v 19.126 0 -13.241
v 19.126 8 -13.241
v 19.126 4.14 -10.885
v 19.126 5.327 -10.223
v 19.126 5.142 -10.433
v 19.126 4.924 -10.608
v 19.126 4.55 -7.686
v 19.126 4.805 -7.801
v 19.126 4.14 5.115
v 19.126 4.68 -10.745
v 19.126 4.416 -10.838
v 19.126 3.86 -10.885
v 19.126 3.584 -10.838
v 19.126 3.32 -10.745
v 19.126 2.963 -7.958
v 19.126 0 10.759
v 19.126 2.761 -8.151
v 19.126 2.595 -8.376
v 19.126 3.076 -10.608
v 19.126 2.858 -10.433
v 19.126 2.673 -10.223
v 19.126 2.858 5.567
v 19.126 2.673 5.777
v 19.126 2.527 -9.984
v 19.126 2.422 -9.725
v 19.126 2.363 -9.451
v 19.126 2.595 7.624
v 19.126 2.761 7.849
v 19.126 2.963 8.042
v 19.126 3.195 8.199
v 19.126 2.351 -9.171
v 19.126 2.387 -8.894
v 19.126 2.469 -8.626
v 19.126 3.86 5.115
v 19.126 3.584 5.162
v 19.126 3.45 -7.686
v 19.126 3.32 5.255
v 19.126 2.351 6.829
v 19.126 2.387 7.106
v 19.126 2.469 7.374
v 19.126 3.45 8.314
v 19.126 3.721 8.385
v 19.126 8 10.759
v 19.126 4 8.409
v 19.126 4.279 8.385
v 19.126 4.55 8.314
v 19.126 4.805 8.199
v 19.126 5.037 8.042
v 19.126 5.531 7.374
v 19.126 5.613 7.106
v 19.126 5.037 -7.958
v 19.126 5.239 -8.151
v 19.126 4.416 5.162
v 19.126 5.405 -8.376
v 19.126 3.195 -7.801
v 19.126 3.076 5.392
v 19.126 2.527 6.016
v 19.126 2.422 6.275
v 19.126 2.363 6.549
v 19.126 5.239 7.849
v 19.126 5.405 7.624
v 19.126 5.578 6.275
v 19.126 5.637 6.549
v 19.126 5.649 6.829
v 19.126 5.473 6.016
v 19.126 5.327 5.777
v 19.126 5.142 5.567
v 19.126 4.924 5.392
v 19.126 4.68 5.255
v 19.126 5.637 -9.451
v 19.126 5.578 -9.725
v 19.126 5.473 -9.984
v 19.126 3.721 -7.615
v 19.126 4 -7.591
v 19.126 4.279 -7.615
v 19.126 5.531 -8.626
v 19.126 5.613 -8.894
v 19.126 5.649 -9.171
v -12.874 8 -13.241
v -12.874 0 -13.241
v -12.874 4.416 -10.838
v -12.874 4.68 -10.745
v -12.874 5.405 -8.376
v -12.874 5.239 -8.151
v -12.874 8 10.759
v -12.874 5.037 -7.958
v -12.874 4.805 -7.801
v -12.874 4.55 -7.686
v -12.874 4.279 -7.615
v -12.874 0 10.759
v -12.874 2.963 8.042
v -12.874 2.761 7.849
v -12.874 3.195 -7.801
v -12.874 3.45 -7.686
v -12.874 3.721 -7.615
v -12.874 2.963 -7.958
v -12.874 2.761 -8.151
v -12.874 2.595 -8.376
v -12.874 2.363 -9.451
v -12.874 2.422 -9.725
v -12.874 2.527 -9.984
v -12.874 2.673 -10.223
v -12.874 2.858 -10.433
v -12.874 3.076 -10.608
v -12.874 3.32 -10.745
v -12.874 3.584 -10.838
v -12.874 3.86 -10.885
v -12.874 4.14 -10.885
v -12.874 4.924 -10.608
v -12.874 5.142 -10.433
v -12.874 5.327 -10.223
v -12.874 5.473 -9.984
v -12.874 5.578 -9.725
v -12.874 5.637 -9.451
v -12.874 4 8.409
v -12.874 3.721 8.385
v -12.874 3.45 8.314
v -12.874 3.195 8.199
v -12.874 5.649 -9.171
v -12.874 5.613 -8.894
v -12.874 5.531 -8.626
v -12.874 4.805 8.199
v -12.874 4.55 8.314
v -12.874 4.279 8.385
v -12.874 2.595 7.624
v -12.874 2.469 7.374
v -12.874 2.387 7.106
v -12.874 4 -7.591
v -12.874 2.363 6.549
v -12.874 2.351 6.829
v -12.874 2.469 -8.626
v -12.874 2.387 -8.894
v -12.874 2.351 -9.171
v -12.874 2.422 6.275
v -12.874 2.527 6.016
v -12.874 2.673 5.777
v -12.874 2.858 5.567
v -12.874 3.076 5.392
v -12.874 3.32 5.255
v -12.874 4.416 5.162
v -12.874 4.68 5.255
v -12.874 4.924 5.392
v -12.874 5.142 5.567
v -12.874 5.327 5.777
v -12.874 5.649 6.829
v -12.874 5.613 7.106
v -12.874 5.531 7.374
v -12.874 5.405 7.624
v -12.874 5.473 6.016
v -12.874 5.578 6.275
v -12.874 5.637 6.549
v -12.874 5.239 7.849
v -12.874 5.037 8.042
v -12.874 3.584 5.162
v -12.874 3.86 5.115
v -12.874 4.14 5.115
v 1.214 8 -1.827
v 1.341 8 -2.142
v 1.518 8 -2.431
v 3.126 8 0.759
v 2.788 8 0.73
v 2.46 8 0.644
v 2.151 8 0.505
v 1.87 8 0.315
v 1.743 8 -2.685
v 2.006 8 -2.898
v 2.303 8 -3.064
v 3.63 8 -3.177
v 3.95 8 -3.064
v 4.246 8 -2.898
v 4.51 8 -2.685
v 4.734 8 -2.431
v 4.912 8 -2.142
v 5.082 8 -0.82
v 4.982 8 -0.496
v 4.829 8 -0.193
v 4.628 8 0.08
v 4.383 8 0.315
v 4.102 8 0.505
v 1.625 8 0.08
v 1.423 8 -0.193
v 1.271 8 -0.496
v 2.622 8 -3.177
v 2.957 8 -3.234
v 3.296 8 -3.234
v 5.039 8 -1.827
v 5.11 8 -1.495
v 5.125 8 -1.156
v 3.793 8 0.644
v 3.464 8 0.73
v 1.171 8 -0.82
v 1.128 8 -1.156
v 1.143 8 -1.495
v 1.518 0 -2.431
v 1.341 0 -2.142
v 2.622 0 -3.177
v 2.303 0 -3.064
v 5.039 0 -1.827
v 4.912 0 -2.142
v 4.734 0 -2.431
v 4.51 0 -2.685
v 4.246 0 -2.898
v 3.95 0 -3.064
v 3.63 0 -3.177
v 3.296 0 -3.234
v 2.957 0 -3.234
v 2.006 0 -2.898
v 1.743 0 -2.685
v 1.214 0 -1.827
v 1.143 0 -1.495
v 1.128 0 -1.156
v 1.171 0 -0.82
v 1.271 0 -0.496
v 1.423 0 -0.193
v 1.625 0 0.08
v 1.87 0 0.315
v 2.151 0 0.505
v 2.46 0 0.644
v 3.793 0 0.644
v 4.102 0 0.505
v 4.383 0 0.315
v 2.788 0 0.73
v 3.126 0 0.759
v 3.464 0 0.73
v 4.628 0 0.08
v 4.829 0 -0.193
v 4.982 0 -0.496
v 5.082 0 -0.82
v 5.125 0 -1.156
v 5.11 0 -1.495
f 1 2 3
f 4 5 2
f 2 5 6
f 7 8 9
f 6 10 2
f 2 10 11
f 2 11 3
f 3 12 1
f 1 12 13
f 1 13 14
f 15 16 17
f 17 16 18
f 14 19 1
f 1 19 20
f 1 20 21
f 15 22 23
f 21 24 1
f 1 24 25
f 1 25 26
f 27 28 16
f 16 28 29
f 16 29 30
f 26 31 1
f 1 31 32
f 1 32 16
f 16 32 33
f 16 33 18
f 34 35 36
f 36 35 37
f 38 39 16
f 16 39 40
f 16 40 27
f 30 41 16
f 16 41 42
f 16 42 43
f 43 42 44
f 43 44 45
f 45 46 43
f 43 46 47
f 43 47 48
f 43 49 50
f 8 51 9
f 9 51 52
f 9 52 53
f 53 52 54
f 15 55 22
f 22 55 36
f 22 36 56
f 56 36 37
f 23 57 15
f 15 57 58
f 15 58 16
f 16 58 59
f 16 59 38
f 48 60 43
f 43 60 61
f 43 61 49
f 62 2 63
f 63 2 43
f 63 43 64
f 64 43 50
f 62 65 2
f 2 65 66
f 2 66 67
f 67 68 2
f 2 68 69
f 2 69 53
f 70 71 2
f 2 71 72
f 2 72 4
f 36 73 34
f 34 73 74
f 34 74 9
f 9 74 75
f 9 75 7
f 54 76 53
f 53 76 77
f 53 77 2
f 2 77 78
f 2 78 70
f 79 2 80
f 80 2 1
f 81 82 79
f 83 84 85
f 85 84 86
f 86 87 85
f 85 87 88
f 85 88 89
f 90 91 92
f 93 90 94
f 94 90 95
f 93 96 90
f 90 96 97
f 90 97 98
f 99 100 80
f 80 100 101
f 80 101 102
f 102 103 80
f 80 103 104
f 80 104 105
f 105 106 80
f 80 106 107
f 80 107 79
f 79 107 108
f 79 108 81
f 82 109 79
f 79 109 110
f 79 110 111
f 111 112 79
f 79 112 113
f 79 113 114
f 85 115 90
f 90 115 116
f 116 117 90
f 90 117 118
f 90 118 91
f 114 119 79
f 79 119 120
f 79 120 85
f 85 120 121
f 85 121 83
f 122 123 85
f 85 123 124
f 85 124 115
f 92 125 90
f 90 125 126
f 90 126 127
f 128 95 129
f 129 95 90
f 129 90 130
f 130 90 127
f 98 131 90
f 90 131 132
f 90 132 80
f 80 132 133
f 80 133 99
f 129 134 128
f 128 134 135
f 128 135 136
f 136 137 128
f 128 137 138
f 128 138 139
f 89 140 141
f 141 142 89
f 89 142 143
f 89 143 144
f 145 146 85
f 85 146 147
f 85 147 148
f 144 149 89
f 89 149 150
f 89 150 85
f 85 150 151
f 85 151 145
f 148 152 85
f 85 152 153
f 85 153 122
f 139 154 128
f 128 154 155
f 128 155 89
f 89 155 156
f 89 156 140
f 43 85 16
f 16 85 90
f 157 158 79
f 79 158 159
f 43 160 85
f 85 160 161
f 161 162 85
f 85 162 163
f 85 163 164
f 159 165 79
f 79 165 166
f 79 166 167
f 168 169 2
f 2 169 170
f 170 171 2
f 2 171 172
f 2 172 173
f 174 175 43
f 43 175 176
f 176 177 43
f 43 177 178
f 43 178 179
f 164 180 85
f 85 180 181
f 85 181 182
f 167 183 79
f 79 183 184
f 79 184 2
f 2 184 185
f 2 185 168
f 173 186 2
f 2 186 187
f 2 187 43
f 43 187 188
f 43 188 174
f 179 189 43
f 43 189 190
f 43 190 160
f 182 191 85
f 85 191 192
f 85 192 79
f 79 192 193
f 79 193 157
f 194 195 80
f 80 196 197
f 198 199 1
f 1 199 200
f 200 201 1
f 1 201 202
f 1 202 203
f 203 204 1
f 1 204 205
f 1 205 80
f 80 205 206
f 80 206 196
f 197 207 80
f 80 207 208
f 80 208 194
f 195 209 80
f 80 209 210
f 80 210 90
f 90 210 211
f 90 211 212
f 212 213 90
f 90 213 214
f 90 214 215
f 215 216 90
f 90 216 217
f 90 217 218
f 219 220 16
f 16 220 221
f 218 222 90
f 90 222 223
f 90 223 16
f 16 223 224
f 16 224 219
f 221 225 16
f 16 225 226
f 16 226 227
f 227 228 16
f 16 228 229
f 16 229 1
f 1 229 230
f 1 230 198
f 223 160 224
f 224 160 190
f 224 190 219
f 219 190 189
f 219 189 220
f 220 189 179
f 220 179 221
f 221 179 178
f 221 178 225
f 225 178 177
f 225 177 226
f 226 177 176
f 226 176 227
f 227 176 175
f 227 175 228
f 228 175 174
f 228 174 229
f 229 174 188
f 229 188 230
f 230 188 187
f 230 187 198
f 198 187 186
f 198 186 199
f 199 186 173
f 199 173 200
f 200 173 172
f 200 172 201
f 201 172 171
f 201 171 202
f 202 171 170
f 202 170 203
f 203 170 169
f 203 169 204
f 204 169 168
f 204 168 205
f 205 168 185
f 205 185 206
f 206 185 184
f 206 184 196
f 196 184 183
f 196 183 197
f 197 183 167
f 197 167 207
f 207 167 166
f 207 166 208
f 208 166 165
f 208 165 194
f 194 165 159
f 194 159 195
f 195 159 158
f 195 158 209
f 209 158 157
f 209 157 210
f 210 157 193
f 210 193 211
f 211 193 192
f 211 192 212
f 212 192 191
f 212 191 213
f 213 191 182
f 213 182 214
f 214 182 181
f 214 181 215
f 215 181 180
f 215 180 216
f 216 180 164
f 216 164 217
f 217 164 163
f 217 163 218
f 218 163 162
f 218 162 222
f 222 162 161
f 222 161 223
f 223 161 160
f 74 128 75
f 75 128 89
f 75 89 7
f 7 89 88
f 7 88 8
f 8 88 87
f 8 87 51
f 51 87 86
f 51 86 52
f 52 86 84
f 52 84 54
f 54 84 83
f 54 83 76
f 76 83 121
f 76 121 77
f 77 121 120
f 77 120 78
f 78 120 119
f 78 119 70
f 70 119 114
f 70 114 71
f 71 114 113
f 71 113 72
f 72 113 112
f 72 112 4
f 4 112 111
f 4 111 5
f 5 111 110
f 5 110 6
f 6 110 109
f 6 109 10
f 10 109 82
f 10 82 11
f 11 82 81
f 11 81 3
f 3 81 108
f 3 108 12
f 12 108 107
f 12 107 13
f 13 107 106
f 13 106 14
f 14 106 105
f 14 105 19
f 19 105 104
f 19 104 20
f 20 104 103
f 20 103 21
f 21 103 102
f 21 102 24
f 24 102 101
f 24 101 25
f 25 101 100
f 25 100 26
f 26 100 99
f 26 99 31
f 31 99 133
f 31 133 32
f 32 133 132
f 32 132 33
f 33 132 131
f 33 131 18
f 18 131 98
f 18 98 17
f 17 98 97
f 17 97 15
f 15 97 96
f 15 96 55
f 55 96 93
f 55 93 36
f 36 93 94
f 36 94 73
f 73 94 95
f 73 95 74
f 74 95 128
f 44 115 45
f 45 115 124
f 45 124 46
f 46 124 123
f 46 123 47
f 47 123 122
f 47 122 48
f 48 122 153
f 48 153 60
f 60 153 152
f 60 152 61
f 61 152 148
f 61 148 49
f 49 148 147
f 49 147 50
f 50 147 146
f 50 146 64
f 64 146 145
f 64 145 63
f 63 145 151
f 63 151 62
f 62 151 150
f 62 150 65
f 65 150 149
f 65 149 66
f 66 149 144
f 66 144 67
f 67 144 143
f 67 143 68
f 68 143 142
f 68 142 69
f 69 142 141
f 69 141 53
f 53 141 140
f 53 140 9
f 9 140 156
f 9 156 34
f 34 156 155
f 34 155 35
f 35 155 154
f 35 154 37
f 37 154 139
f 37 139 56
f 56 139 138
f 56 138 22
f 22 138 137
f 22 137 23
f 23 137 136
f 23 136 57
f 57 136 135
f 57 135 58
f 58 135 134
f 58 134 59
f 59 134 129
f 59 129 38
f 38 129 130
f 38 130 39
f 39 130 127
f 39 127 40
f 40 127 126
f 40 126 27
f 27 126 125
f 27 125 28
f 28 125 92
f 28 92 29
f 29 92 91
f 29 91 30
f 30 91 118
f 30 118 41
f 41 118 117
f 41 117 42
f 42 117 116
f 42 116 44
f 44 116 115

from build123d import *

# Parameters (mm, degrees)
ESQUISSE1_W             = 32
ESQUISSE1_H             = 24
BOSS_EXTRU_1_DEPTH      = 8
ESQUISSE2_R             = 2
ENL_V_MAT_EXTRU_1_DEPTH = 8
ENL_V_MAT_EXTRU_2_REACH = 37.543
ESQUISSE3_R             = 1.65
ENL_V_MAT_EXTRU_3_REACH = 37.543
ESQUISSE4_R             = 1.65


with BuildPart() as part:
    # Esquisse1 → Boss.-Extru.1 (new body)
    with BuildSketch(Plane(origin=(0, 0, 0), x_dir=(1, 0, 0), z_dir=(0, 1, 0))):
        with Locations((3.126436782, 1.24137931)):
            Rectangle(ESQUISSE1_W, ESQUISSE1_H)
    extrude(amount=BOSS_EXTRU_1_DEPTH)

    # Esquisse2 → Enlèv. mat.-Extru.1 (cut)
    with BuildSketch(Plane(origin=(0, 8, 0), x_dir=(1, 0, 0), z_dir=(0, 1, 0))):
        with Locations(Location((3.126436782, 1.24137931, 0), (0, 0, 270))):
            Circle(ESQUISSE2_R)
    extrude(amount=-ENL_V_MAT_EXTRU_1_DEPTH, mode=Mode.SUBTRACT)

    # Esquisse3 → Enlèv. mat.-Extru.2 (cut, up to next)
    with BuildSketch(Plane.ZY.offset(12.873563218), mode=Mode.PRIVATE) as enl_v_mat_extru_2_sk1:
        with Locations((-9.24137931, 4)):
            Circle(ESQUISSE3_R)
    enl_v_mat_extru_2_tool1 = extrude(enl_v_mat_extru_2_sk1.sketch, amount=-ENL_V_MAT_EXTRU_2_REACH, mode=Mode.PRIVATE) & part.part
    add(enl_v_mat_extru_2_tool1.solids().sort_by_distance((-12.873563, 4, -9.241379))[0], mode=Mode.SUBTRACT)

    # Esquisse4 → Enlèv. mat.-Extru.3 (cut, up to next)
    with BuildSketch(Plane.ZY.offset(12.873563218), mode=Mode.PRIVATE) as enl_v_mat_extru_3_sk1:
        with Locations((6.75862069, 4)):
            Circle(ESQUISSE4_R)
    enl_v_mat_extru_3_tool1 = extrude(enl_v_mat_extru_3_sk1.sketch, amount=-ENL_V_MAT_EXTRU_3_REACH, mode=Mode.PRIVATE) & part.part
    add(enl_v_mat_extru_3_tool1.solids().sort_by_distance((-12.873563, 4, 6.758621))[0], mode=Mode.SUBTRACT)


solid = part.part
